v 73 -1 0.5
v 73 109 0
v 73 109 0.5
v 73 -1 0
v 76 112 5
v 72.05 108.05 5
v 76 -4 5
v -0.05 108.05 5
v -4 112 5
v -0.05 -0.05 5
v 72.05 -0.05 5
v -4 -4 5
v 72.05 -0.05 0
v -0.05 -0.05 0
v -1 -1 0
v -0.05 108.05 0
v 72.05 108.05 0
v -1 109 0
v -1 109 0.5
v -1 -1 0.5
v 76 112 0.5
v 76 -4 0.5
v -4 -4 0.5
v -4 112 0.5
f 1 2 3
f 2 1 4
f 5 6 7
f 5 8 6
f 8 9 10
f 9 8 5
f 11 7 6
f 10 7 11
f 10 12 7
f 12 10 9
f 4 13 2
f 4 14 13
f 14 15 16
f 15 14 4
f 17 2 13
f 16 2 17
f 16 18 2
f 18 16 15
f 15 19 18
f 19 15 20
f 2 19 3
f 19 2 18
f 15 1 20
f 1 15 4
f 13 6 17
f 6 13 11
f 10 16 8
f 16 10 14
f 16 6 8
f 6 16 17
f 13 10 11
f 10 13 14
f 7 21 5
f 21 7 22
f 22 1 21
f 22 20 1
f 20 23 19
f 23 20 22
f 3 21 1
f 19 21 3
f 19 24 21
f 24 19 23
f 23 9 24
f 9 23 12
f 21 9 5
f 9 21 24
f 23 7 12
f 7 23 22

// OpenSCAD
// Generated by SolidPython 1.0.4 on 2020-12-18 11:25:12


union() {
	difference() {
		translate(v = [-1.0000000000, -1.0000000000, 0]) {
			cube(size = [74.0000000000, 110.0000000000, 5]);
		}
		translate(v = [-0.0500000000, -0.0500000000, 0]) {
			cube(size = [72.1000000000, 108.1000000000, 5]);
		}
	}
	translate(v = [0, 0, 0.5000000000]) {
		difference() {
			translate(v = [-4.0000000000, -4.0000000000, 0]) {
				cube(size = [80.0000000000, 116.0000000000, 4.5000000000]);
			}
			translate(v = [-1.0000000000, -1.0000000000, 0]) {
				cube(size = [74.0000000000, 110.0000000000, 4.5000000000]);
			}
		}
	}
}
